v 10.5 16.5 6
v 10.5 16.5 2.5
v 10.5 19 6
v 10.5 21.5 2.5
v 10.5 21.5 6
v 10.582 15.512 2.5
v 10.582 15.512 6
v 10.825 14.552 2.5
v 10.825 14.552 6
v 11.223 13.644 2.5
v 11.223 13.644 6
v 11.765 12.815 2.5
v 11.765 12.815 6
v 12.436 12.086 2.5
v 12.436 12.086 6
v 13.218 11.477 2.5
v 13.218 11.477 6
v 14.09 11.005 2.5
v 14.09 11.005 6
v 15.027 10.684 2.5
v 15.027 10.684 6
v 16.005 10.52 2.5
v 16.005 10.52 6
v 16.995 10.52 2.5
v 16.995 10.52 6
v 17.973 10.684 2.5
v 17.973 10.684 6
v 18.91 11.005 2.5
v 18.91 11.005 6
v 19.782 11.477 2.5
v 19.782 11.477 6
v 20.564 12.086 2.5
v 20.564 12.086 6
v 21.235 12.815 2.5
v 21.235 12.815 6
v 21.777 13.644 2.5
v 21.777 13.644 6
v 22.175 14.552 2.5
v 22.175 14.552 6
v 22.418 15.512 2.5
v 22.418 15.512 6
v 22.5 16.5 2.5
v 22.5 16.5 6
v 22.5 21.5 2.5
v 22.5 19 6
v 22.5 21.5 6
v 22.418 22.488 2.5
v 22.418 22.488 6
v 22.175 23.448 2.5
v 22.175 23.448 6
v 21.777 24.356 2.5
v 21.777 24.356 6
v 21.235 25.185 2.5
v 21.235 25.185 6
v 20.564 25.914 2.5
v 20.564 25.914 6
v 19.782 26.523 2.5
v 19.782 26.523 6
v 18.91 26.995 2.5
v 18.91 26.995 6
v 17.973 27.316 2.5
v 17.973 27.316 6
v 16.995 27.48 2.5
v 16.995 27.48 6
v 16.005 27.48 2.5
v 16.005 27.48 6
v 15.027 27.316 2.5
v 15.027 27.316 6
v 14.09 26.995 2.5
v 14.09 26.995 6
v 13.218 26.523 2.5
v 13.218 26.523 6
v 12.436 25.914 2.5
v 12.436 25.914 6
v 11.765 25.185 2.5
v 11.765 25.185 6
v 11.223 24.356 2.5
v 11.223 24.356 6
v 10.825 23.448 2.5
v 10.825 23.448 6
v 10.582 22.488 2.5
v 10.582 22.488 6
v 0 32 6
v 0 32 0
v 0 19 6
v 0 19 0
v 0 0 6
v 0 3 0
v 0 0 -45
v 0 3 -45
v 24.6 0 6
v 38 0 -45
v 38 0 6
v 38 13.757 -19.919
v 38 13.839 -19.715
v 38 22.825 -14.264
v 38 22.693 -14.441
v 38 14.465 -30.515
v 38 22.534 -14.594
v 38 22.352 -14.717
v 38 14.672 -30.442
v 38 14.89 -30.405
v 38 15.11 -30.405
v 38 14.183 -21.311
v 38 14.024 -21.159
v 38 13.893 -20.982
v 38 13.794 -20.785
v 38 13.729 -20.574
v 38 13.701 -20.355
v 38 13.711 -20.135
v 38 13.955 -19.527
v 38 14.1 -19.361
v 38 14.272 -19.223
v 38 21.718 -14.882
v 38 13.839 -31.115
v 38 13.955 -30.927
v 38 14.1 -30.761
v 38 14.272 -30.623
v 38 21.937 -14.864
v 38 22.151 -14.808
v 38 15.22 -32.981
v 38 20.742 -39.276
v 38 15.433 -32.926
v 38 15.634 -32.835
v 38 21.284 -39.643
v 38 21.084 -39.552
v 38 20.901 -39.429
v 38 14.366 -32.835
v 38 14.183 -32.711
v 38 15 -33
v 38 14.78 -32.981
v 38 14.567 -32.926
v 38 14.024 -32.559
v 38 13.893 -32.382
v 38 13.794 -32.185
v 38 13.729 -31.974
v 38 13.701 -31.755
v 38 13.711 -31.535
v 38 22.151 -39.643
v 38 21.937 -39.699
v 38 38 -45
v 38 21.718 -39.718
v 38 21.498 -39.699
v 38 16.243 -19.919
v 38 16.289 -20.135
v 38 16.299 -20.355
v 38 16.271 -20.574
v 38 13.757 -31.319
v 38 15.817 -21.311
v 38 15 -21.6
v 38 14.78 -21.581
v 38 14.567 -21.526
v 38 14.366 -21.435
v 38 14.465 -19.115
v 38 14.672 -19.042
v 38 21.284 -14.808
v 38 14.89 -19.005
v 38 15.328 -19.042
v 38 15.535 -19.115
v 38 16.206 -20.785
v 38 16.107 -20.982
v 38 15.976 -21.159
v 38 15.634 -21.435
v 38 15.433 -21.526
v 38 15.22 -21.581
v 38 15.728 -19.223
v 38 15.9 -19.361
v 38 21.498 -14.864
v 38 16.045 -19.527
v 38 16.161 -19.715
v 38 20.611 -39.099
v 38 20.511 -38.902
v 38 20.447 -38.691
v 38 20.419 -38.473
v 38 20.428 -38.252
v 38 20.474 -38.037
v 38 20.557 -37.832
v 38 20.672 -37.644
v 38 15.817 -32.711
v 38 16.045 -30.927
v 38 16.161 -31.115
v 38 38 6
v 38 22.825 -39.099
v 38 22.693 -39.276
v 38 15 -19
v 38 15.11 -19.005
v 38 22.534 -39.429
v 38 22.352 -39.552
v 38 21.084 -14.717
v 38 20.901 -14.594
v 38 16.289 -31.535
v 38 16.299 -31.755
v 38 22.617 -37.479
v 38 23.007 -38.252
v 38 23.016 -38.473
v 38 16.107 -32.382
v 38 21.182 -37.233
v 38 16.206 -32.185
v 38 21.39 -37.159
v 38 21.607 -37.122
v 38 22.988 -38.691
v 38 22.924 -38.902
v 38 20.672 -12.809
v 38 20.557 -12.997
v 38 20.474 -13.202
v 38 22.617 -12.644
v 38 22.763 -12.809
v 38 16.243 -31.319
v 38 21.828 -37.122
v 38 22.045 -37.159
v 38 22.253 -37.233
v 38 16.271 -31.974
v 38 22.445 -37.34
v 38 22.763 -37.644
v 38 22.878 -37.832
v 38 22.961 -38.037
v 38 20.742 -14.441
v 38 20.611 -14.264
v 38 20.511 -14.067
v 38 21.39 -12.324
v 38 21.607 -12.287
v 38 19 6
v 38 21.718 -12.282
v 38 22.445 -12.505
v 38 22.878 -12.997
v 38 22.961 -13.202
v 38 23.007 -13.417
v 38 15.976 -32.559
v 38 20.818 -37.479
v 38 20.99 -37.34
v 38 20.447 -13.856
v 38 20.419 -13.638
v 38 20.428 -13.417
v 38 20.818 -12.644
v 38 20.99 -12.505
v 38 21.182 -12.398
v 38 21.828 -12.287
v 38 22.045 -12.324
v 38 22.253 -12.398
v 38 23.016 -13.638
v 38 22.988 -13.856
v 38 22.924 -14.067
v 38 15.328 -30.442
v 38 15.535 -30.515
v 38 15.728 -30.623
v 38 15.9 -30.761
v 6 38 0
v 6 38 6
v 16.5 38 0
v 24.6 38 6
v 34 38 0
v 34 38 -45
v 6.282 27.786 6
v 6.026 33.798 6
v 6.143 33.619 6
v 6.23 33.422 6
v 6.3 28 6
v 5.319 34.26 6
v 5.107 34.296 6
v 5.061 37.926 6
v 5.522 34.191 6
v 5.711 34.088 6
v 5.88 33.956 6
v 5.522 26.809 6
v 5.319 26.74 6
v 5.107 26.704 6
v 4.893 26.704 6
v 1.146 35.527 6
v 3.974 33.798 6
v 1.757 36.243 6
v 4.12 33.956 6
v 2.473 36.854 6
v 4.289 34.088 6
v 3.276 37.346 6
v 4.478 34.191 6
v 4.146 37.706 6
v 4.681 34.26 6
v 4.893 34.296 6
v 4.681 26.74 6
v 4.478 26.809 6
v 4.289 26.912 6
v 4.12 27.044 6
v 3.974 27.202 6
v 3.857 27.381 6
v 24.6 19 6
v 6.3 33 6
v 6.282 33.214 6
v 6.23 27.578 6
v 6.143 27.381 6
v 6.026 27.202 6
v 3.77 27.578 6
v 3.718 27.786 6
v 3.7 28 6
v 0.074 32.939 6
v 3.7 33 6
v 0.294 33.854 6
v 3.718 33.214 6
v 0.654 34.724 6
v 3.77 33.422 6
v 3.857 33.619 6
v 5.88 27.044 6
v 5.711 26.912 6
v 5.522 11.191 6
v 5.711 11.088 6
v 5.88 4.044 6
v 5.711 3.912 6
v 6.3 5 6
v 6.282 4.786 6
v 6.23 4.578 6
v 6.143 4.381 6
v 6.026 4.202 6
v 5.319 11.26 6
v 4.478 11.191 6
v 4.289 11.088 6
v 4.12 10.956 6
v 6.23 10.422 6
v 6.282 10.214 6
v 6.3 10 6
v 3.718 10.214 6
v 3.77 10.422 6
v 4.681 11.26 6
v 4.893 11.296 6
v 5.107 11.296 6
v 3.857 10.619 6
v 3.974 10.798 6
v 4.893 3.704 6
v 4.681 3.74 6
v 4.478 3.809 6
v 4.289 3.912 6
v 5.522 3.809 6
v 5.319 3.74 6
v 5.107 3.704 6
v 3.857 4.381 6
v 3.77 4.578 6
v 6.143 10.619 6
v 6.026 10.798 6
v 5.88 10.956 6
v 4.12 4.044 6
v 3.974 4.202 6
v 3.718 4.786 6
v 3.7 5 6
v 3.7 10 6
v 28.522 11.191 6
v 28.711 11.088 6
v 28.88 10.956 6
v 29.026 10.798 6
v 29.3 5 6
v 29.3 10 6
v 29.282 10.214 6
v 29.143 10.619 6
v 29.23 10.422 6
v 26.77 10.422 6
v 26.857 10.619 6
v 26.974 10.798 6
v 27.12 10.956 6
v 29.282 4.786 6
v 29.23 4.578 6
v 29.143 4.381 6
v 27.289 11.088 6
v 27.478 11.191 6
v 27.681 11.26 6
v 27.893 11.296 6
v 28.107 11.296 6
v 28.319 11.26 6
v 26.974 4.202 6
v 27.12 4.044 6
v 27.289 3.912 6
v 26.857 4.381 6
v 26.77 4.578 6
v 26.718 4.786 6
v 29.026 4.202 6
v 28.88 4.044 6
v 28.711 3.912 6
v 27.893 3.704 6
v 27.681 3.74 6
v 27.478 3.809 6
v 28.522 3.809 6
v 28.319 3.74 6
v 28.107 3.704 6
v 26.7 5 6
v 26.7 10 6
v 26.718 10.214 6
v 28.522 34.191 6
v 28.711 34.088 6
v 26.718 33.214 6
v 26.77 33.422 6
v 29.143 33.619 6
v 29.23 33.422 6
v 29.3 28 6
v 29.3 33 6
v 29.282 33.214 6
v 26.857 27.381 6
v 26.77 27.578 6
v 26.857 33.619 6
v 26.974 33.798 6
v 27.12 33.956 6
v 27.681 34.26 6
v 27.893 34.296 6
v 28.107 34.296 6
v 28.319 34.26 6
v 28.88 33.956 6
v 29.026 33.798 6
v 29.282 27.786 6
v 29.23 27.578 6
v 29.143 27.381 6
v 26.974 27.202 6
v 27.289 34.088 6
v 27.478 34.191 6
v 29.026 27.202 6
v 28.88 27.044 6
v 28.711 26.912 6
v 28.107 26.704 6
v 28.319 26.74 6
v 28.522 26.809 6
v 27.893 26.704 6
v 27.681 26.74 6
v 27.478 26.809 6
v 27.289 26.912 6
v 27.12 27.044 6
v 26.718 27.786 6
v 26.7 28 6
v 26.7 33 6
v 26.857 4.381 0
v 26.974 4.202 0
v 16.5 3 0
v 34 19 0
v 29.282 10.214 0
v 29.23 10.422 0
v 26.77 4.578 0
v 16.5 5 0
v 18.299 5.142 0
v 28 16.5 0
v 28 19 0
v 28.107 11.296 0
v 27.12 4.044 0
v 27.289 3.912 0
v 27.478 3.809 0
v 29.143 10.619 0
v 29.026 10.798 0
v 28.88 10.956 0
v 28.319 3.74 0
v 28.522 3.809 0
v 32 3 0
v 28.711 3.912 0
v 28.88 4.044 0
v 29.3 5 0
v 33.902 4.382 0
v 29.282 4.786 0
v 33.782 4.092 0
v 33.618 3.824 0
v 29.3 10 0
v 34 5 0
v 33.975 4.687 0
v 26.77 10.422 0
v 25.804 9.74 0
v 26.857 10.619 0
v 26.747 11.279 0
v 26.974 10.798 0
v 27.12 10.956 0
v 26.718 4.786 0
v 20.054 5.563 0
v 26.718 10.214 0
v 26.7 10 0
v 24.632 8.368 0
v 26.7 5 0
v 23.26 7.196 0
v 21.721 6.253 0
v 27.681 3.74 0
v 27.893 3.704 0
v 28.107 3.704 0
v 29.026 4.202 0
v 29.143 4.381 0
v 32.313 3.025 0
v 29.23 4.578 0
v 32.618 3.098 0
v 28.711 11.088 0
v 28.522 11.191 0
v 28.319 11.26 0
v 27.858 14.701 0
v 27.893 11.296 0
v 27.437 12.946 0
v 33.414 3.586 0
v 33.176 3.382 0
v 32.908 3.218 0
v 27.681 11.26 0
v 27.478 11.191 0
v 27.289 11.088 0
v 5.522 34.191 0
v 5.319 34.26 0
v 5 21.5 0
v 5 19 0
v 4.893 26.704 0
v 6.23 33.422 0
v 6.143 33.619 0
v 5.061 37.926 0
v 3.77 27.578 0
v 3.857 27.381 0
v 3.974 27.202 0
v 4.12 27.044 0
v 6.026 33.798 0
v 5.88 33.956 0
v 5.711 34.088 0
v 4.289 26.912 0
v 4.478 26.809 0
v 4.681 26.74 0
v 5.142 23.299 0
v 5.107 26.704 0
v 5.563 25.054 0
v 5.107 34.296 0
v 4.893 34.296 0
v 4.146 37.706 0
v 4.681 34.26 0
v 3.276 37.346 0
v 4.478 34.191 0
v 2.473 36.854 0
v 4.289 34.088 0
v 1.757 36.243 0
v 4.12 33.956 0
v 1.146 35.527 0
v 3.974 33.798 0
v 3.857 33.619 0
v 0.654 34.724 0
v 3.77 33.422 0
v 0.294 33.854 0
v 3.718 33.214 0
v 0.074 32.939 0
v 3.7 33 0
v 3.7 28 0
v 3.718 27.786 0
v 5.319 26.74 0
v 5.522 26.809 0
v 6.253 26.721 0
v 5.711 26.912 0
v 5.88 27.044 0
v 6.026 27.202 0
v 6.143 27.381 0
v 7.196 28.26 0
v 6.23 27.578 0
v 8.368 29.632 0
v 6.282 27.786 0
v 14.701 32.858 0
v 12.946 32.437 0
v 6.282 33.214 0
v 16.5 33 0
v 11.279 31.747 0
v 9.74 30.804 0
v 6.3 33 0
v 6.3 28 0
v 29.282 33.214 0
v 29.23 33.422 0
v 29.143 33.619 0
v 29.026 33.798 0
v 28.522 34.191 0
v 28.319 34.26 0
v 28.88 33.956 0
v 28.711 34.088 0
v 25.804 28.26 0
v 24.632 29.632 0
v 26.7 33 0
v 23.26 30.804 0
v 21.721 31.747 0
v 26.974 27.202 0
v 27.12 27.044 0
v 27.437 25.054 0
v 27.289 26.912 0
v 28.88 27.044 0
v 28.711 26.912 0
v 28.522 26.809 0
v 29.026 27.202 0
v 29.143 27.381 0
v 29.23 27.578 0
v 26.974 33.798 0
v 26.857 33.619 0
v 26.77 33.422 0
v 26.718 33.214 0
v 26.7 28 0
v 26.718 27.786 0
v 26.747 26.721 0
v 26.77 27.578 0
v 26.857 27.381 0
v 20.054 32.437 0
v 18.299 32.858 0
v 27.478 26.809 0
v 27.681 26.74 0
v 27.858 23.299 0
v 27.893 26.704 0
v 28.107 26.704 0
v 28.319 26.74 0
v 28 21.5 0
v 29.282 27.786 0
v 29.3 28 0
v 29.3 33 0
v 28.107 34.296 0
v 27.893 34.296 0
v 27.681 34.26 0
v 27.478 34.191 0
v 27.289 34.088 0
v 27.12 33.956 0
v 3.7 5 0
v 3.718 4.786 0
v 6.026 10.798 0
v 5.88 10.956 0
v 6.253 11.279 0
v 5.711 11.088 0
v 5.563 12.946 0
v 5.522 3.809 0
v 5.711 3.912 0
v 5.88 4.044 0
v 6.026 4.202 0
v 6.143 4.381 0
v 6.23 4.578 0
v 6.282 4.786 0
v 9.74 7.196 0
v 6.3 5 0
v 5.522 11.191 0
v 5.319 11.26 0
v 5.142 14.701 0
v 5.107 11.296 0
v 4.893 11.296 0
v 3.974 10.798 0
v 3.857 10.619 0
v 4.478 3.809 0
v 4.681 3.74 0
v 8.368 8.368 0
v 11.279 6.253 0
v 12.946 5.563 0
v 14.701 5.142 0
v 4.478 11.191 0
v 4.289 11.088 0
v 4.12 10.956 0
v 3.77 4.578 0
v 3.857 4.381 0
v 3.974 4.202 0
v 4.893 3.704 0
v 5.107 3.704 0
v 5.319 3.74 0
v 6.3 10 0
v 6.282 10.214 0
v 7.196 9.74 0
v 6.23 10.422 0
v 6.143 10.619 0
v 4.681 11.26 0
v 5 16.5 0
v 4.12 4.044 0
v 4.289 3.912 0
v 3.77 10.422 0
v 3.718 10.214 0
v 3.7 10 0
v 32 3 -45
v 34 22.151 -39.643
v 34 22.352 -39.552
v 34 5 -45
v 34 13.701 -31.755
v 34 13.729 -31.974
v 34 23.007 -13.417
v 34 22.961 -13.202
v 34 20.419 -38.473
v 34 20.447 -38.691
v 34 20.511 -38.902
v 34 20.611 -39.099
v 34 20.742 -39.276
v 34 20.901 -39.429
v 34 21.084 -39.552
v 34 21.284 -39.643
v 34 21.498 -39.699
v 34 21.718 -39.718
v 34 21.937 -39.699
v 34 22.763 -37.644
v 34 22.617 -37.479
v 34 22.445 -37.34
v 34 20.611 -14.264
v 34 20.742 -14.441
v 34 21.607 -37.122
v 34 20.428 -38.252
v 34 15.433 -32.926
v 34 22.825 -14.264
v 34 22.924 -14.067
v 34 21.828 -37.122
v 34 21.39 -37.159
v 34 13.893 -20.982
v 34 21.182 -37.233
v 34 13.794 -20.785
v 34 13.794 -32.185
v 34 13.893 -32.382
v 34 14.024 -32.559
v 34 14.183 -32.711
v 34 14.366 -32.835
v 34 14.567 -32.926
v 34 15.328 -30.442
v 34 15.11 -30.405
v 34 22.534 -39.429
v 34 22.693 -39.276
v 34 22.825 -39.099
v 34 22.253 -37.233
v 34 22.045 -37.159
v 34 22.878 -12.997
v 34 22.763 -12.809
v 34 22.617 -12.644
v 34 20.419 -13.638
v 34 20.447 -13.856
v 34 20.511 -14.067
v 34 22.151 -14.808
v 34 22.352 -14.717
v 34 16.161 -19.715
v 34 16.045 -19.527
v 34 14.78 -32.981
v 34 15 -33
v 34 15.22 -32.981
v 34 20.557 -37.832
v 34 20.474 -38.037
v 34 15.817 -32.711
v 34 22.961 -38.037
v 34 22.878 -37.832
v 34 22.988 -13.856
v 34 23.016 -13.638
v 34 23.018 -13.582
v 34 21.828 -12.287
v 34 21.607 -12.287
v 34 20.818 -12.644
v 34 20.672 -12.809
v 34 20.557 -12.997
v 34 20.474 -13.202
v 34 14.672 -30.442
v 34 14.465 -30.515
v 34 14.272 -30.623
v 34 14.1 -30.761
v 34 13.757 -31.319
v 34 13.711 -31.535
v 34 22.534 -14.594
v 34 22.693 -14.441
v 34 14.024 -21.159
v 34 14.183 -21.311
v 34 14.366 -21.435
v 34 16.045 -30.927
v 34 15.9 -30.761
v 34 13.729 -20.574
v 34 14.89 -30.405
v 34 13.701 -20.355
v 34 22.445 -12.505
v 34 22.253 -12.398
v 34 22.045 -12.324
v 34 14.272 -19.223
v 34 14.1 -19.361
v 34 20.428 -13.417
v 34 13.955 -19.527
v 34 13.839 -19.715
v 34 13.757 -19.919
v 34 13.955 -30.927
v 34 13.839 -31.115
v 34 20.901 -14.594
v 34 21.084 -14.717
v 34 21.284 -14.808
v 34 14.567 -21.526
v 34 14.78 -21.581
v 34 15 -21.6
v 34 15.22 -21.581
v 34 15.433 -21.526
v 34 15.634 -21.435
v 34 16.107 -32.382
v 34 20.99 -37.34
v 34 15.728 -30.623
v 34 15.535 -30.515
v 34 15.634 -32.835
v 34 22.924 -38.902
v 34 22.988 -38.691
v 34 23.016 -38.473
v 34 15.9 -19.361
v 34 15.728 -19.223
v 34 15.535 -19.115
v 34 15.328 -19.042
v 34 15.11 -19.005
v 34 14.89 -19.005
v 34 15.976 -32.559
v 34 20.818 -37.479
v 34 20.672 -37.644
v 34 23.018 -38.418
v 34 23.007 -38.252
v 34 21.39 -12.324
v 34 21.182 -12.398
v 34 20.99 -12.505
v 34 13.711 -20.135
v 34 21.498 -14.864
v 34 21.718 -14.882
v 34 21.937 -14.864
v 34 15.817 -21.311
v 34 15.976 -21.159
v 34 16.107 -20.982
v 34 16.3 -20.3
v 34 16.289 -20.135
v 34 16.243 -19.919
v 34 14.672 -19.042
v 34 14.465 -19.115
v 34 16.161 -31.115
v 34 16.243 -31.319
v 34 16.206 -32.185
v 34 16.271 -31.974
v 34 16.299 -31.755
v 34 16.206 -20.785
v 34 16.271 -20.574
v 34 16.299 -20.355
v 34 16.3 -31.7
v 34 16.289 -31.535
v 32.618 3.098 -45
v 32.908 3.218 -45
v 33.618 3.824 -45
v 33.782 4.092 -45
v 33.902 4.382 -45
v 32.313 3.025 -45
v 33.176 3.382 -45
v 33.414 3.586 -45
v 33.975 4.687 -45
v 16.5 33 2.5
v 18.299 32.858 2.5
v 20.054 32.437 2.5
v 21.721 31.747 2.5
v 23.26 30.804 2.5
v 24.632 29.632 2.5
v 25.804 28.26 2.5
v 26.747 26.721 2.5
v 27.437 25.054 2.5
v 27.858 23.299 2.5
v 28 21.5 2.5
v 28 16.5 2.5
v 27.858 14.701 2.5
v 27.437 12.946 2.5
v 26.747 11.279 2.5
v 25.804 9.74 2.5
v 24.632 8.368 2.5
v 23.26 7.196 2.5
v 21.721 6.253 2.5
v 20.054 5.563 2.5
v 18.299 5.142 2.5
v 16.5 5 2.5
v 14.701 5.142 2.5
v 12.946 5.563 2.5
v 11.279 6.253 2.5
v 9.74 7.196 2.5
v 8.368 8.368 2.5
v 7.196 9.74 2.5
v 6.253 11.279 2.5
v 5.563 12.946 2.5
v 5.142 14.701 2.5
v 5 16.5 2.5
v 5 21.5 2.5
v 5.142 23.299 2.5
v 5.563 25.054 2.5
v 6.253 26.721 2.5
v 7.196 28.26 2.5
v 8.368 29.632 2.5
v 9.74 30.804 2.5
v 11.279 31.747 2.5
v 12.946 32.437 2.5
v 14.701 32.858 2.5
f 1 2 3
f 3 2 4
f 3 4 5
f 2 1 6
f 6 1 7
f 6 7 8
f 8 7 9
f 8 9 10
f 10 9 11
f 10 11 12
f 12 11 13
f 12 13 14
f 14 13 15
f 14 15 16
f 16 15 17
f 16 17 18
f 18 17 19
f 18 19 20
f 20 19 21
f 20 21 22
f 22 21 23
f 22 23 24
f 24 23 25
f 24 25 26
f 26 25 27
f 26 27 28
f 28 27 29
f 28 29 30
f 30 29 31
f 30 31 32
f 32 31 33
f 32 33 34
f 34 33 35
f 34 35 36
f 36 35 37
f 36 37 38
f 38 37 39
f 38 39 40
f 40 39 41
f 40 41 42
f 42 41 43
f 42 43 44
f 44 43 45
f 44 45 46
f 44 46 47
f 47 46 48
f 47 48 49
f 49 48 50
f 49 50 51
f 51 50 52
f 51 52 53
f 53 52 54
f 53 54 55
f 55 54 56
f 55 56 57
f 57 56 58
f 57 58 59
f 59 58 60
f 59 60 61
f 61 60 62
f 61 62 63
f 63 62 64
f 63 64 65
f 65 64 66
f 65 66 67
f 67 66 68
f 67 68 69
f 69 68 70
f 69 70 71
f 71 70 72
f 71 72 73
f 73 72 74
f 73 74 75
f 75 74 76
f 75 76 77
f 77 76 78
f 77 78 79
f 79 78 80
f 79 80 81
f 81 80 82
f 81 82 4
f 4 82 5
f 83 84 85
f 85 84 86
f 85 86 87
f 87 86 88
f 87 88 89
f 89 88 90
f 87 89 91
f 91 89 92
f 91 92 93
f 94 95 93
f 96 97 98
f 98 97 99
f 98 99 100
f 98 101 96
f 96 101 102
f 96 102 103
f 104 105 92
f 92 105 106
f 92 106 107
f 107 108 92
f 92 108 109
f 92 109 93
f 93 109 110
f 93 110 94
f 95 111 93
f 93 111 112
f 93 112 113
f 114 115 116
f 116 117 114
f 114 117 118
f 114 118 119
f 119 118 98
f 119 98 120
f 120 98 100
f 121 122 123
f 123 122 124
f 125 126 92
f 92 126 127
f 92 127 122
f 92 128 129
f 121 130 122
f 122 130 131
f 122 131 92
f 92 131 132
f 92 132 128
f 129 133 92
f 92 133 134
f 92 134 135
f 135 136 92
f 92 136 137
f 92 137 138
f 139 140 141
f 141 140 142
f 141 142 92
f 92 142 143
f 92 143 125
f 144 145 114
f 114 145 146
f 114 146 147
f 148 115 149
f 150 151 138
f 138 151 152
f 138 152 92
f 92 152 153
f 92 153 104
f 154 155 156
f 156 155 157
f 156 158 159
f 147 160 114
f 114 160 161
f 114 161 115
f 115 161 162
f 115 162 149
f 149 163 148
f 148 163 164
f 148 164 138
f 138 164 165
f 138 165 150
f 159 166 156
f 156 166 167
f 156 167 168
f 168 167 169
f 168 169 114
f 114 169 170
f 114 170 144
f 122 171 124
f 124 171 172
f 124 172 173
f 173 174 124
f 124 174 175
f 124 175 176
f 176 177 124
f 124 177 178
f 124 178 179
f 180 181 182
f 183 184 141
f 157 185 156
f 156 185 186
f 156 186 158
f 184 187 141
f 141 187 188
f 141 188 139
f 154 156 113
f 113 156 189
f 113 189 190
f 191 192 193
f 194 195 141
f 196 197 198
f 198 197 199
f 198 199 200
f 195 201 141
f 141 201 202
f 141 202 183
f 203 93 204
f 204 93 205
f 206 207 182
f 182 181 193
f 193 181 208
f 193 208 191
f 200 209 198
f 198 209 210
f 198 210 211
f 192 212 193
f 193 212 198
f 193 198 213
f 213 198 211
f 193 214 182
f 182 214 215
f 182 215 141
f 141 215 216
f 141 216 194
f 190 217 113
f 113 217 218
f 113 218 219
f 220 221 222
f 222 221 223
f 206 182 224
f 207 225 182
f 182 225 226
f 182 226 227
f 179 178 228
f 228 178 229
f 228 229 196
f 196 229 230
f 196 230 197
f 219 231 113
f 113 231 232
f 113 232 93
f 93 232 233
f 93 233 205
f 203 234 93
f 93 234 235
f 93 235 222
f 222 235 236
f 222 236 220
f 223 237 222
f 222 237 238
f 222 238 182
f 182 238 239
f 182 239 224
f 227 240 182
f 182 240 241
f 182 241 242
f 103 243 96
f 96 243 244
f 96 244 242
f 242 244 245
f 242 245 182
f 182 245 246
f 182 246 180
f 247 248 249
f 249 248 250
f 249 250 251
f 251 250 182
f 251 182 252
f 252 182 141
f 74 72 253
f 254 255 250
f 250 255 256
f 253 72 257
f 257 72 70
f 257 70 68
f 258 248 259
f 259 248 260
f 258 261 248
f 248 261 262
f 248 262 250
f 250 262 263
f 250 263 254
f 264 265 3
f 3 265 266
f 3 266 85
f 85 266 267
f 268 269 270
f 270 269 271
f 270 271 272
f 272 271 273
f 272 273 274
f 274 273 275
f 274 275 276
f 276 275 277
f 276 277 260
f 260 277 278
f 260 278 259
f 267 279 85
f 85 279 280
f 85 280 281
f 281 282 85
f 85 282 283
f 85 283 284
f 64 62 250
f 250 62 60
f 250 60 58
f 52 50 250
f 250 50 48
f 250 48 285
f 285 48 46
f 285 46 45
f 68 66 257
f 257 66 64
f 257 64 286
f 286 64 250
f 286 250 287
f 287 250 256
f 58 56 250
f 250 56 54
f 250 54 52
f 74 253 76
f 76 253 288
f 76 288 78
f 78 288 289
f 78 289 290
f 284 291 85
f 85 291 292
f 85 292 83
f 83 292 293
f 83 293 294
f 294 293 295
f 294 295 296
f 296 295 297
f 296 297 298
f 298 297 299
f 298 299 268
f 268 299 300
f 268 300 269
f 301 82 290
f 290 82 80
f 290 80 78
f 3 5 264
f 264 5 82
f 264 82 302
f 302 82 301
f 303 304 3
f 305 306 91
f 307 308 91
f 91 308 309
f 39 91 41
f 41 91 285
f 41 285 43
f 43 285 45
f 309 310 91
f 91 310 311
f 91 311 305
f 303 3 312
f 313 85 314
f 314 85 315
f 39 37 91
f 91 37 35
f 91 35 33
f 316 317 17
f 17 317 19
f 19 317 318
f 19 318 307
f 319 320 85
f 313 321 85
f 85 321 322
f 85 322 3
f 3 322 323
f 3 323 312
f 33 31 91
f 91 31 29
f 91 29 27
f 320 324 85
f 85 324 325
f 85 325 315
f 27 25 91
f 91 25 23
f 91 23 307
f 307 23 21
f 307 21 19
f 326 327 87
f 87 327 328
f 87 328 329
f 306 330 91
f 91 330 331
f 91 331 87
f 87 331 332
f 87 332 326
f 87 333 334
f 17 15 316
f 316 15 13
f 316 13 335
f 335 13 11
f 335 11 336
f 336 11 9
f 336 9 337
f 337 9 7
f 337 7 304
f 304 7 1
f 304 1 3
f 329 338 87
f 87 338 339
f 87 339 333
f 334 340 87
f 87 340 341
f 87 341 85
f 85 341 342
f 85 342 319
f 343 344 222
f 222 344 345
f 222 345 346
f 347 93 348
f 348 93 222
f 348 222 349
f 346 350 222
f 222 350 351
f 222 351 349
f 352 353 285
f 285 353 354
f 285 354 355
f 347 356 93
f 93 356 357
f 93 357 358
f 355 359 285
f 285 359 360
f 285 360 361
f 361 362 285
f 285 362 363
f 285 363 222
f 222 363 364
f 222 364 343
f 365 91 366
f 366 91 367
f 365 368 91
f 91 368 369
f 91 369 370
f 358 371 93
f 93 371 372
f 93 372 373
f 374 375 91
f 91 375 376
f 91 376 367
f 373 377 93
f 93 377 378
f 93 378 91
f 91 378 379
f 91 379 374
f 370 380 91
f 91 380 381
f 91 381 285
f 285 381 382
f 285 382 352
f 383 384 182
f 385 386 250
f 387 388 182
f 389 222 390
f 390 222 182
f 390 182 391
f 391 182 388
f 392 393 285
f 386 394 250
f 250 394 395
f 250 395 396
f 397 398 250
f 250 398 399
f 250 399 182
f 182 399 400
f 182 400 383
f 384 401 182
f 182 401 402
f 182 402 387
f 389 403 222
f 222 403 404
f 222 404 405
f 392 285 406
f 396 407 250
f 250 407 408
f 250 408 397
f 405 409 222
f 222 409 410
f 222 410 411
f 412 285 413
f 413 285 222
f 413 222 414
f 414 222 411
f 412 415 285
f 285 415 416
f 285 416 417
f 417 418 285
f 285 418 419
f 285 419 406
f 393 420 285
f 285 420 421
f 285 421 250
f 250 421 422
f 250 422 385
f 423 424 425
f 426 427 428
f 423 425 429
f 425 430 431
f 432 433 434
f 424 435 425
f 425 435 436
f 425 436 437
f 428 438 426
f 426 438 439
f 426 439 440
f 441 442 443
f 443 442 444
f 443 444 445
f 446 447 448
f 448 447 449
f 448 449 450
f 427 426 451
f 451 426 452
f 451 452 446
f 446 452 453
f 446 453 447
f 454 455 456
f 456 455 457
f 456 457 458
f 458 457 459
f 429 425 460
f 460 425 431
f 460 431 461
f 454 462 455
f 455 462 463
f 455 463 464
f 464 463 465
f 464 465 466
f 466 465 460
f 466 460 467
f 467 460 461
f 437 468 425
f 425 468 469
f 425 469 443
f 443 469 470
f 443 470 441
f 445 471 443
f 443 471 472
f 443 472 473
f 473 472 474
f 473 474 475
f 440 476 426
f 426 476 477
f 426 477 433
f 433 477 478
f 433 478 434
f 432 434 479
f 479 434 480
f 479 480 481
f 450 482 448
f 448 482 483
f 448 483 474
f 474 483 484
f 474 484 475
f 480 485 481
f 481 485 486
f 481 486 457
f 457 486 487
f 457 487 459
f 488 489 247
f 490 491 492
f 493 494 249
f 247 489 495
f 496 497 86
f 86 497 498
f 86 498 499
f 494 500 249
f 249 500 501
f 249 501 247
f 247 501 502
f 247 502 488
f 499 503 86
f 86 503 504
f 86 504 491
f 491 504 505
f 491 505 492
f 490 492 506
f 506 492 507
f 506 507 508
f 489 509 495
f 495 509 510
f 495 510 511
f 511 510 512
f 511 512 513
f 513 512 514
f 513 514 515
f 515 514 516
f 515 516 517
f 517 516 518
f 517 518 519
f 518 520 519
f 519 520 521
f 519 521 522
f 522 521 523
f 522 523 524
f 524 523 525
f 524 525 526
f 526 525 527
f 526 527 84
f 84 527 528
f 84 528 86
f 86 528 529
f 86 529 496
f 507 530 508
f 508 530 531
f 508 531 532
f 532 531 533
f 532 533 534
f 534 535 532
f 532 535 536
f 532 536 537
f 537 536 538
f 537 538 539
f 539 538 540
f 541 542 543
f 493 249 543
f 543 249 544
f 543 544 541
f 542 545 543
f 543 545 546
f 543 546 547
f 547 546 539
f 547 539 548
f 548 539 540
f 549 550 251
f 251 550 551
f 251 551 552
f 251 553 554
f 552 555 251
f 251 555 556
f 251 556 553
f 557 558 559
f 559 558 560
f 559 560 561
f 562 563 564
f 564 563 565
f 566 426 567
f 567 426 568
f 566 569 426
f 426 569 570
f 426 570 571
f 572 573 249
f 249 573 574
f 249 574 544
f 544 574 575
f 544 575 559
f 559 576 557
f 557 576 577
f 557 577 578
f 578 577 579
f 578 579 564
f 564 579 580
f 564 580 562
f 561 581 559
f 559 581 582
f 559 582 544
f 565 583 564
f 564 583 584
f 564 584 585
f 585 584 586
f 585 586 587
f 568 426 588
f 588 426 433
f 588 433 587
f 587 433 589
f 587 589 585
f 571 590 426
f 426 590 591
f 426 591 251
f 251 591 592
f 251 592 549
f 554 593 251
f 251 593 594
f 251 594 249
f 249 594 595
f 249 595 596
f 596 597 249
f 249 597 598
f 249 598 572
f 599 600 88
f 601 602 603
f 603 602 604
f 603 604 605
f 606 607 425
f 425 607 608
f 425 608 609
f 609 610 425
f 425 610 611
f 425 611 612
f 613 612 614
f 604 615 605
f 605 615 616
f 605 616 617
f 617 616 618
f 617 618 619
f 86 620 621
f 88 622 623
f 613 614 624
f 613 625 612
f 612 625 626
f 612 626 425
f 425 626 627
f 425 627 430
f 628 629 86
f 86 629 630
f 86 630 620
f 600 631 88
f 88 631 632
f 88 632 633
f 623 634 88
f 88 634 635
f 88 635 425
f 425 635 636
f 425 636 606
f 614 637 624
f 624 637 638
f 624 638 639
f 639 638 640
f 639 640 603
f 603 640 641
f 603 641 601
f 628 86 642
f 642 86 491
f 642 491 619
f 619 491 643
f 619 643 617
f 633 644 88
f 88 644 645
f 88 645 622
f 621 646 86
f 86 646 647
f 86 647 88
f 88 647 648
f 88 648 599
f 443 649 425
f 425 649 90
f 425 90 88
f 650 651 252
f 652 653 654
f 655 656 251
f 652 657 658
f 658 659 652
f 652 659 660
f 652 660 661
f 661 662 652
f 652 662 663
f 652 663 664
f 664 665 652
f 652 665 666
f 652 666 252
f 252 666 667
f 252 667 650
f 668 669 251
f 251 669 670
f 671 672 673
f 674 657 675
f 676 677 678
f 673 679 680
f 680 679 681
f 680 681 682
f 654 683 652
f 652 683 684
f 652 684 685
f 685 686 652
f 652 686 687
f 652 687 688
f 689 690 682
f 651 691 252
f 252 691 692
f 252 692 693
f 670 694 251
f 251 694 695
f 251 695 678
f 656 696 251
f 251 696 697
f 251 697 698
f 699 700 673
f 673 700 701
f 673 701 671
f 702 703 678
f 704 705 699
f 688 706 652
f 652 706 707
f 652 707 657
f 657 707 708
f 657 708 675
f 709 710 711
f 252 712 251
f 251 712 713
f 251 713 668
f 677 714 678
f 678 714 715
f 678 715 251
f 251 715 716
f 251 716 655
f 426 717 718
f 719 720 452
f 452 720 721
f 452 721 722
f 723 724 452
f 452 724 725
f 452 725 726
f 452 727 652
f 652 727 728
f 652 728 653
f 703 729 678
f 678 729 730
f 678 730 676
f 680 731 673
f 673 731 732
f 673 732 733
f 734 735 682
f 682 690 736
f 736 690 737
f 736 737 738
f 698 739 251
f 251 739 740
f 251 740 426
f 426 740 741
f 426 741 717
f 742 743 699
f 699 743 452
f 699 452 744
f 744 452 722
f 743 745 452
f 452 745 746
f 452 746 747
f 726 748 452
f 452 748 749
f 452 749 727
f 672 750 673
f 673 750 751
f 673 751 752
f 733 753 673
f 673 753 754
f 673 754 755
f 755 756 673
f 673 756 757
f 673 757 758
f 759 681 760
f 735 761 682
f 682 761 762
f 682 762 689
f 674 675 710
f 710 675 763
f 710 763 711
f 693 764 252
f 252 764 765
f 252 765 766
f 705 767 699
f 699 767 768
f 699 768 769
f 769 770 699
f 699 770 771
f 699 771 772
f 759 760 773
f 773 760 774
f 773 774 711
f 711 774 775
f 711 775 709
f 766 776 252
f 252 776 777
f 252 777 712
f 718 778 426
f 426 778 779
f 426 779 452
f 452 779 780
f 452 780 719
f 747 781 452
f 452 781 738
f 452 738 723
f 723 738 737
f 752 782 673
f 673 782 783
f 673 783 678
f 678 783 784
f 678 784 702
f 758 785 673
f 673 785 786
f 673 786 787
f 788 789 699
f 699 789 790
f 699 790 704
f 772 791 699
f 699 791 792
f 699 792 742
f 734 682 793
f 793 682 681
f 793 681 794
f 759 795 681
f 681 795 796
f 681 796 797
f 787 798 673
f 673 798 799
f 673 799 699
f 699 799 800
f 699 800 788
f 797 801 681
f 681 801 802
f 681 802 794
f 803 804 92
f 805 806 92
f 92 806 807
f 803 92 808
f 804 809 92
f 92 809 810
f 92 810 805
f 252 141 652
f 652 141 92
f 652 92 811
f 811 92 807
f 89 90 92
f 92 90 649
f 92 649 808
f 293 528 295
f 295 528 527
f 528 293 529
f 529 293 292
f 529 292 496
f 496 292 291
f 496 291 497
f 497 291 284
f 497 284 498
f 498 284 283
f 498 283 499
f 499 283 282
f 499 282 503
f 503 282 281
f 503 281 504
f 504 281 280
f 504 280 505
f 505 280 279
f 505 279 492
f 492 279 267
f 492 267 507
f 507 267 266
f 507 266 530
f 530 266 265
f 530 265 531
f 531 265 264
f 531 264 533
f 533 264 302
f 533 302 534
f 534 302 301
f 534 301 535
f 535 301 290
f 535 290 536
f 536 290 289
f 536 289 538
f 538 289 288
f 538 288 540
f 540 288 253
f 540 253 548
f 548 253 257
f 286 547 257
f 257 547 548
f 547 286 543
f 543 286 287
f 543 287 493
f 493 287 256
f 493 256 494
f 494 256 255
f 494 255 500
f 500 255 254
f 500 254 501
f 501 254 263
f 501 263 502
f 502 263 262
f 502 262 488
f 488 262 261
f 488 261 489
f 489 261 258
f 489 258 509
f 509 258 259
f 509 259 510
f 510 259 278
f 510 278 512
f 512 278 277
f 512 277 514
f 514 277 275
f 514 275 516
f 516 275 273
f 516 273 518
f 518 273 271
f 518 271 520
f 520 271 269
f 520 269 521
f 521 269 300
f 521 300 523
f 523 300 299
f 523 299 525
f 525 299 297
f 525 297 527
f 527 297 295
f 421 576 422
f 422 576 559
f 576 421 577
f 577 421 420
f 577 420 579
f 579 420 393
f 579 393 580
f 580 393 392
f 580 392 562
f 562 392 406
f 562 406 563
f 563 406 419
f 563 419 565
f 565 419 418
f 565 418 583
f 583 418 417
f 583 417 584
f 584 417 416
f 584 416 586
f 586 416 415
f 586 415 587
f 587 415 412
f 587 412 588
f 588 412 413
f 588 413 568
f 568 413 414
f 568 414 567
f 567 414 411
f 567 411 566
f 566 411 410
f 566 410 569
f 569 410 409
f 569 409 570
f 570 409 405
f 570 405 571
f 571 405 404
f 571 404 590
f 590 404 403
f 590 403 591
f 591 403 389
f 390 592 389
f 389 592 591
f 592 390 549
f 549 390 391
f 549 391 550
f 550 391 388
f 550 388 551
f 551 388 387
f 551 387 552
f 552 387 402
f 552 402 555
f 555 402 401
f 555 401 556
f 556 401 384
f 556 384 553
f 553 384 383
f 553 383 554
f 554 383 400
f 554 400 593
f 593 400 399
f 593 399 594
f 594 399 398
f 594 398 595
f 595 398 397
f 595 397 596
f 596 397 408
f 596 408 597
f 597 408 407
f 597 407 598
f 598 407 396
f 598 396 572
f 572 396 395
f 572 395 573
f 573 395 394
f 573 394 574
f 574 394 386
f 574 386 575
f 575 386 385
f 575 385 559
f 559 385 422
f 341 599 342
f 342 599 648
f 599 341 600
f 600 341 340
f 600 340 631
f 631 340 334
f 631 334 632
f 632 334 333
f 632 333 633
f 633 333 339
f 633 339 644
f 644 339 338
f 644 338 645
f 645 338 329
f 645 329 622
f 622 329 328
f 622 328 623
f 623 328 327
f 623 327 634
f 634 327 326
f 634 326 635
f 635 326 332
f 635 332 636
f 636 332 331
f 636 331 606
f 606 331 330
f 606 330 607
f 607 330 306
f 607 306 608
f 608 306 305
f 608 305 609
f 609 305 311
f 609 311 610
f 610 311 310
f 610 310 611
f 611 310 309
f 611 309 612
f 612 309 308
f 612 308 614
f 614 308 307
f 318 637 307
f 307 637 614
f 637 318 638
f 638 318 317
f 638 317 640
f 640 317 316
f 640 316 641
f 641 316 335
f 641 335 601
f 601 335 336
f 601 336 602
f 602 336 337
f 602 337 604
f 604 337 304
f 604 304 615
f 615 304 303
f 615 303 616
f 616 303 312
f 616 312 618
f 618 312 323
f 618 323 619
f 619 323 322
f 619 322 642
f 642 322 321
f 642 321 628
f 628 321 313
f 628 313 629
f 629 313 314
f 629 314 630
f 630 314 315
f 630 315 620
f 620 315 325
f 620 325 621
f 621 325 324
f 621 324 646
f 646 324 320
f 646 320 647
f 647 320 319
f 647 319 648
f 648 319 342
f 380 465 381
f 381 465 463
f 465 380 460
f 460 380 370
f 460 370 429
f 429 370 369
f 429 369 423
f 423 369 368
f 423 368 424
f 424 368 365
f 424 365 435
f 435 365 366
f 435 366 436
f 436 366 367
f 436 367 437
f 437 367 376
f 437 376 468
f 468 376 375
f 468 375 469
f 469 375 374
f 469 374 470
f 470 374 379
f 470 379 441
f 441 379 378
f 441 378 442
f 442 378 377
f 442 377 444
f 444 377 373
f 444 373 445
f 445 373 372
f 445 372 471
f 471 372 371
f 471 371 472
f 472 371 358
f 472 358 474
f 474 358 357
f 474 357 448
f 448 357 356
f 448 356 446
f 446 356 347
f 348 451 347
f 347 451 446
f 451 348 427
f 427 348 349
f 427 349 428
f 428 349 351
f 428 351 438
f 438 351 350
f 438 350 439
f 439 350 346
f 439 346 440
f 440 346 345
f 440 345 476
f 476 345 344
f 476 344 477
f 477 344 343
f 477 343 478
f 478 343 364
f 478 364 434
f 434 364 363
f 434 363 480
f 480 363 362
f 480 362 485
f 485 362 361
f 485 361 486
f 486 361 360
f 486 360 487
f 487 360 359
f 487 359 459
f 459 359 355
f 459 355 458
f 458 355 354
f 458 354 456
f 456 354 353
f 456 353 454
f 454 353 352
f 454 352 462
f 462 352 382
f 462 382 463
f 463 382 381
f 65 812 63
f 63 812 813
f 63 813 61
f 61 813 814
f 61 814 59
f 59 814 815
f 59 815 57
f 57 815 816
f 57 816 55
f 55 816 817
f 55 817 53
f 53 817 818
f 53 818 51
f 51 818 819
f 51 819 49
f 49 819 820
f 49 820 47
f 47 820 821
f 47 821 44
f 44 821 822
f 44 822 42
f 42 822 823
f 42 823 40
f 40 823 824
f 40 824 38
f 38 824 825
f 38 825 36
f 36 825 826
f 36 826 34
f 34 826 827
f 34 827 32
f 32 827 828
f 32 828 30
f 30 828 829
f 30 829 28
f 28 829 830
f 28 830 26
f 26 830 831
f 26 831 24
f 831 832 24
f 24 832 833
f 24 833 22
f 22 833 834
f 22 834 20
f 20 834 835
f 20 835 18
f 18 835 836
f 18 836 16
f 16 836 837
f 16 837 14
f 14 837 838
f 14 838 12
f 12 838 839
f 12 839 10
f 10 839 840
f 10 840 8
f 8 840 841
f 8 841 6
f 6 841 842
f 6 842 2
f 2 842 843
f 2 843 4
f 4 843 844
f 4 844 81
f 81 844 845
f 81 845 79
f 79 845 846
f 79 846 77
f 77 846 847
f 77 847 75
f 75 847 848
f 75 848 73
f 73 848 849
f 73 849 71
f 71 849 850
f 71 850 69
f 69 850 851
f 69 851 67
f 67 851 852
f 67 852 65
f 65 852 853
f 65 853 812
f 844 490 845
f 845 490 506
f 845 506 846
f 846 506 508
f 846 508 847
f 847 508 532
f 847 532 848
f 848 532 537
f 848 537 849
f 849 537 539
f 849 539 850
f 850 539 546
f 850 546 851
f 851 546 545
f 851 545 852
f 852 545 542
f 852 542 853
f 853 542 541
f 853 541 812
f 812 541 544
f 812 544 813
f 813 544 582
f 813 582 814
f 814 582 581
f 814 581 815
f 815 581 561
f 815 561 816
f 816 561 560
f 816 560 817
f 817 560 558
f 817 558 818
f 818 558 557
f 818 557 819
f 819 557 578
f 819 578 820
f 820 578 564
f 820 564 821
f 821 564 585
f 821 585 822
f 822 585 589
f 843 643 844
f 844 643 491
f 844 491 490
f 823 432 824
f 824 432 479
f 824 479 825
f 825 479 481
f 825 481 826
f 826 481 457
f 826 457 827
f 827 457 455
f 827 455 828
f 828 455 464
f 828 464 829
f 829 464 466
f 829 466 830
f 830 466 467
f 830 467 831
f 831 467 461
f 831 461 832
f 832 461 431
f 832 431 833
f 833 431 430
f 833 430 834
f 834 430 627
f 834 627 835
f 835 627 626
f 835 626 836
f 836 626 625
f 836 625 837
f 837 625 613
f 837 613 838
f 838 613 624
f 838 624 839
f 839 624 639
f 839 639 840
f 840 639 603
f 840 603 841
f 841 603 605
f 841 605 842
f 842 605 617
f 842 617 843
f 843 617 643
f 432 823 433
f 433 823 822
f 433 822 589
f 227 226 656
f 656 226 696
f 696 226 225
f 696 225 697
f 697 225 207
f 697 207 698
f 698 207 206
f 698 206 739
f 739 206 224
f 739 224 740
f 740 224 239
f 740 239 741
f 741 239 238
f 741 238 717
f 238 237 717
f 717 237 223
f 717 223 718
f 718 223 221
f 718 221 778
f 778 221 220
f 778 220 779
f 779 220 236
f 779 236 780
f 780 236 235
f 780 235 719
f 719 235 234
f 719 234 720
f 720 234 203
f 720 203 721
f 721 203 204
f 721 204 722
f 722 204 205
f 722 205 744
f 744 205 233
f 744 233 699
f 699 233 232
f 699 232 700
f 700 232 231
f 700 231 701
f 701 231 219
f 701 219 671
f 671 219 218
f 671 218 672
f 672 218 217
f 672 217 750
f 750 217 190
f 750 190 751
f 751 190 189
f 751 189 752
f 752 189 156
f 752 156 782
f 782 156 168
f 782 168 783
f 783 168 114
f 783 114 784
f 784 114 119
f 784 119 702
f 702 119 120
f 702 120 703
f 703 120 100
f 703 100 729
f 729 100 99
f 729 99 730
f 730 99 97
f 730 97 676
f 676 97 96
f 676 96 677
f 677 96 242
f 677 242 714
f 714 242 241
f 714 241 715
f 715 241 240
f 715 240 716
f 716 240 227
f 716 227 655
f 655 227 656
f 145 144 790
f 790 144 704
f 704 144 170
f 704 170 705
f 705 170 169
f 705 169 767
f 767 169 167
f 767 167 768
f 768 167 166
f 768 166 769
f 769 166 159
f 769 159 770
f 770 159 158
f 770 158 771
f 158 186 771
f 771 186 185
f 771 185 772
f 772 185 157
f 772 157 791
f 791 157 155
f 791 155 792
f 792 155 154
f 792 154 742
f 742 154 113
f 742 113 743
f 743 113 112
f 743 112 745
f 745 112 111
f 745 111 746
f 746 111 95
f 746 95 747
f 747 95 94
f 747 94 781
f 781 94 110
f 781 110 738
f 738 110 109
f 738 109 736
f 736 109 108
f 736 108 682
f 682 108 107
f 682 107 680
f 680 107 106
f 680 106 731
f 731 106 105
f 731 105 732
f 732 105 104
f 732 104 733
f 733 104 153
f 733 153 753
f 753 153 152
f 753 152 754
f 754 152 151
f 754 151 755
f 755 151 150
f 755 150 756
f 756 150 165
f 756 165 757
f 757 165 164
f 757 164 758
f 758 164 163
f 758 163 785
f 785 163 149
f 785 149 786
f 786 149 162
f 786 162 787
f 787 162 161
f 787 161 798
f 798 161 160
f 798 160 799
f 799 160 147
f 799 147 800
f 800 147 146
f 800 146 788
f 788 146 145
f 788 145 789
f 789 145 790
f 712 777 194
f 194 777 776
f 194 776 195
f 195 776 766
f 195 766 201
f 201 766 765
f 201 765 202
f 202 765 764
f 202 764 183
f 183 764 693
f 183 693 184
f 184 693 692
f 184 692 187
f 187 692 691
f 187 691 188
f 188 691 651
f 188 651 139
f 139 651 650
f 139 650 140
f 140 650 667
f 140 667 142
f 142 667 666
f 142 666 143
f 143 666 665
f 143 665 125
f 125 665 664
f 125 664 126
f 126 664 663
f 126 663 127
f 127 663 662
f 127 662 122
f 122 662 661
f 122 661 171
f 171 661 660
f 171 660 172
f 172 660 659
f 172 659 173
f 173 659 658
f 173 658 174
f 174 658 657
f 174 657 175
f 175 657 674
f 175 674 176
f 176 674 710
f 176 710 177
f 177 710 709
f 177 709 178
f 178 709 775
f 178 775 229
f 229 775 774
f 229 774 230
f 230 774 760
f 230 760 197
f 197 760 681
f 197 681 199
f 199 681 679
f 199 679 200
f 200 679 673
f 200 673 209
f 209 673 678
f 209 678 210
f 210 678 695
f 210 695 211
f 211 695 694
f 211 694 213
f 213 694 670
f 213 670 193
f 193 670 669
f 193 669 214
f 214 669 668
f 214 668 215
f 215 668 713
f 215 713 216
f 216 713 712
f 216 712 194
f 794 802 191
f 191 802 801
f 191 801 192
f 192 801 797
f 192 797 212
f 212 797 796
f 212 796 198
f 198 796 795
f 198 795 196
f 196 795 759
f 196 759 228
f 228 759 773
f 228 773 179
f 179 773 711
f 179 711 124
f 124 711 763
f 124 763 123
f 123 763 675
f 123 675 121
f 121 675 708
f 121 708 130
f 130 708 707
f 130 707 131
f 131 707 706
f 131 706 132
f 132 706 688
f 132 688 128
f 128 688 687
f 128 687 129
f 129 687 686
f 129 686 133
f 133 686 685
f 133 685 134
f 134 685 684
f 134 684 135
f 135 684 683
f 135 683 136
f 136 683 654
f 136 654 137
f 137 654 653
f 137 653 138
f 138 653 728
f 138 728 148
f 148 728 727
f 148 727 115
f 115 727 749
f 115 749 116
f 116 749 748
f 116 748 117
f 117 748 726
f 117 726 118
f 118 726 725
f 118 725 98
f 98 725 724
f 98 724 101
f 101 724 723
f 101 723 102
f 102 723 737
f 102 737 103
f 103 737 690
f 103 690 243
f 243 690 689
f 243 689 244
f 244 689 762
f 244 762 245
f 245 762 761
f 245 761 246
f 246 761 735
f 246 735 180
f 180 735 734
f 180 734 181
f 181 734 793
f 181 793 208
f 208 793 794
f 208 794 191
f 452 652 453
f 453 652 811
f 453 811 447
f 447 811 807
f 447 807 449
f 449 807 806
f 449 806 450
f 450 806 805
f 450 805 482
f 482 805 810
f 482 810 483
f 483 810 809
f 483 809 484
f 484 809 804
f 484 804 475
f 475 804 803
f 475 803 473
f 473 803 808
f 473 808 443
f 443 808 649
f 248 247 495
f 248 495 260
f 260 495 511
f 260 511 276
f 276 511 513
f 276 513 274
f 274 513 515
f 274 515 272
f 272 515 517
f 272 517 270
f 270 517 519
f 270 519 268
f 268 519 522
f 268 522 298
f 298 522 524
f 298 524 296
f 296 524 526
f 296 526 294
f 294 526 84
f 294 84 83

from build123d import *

# Parameters (mm, degrees)
SKETCH1_W           = 38
SKETCH1_H           = 38
BOSS_EXTRUDE1_DEPTH = 6
BOSS_EXTRUDE2_DEPTH = 45
CUT_EXTRUDE1_DEPTH  = 6
CUT_EXTRUDE2_DEPTH  = 2.5
SKETCH6_R           = 1.3
CUT_EXTRUDE3_DEPTH  = 4
FILLET1_R           = 2
FILLET2_R           = 6


with BuildPart() as part:
    # Sketch1 → Boss-Extrude1 (new body)
    with BuildSketch(Plane.XY):
        with Locations((19, 19)):
            Rectangle(SKETCH1_W, SKETCH1_H)
    extrude(amount=BOSS_EXTRUDE1_DEPTH)

    # Sketch2 → Boss-Extrude2 (add)
    with BuildSketch(Plane(origin=(0, 0, 0), x_dir=(-1, 0, 0), z_dir=(0, 0, -1))):
        Polygon((-34, 38), (-34, 3), (0, 3), (0, 0), (-38, 0), (-38, 38), align=None)
    extrude(amount=BOSS_EXTRUDE2_DEPTH)

    # Sketch3 → Cut-Extrude1 (cut)
    with BuildSketch(Plane.XY.offset(6)):
        with BuildLine():
            Line((6.3, 33), (6.3, 28))
            ThreePointArc((6.3, 28), (5, 26.7), (3.7, 28))
            Line((3.7, 28), (3.7, 33))
            ThreePointArc((3.7, 33), (5, 34.3), (6.3, 33))
        make_face()
        with BuildLine():
            Line((29.3, 33), (29.3, 28))
            ThreePointArc((29.3, 28), (28, 26.7), (26.7, 28))
            Line((26.7, 28), (26.7, 33))
            ThreePointArc((26.7, 33), (28, 34.3), (29.3, 33))
        make_face()
        with BuildLine():
            Line((6.3, 10), (6.3, 5))
            ThreePointArc((6.3, 5), (5, 3.7), (3.7, 5))
            Line((3.7, 5), (3.7, 10))
            ThreePointArc((3.7, 10), (5, 11.3), (6.3, 10))
        make_face()
        with BuildLine():
            Line((29.3, 10), (29.3, 5))
            ThreePointArc((29.3, 5), (28, 3.7), (26.7, 5))
            Line((26.7, 5), (26.7, 10))
            ThreePointArc((26.7, 10), (28, 11.3), (29.3, 10))
        make_face()
        with BuildLine():
            Line((22.5, 21.5), (22.5, 16.5))
            ThreePointArc((22.5, 16.5), (16.5, 10.5), (10.5, 16.5))
            Line((10.5, 16.5), (10.5, 21.5))
            ThreePointArc((10.5, 21.5), (16.5, 27.5), (22.5, 21.5))
        make_face()
    extrude(amount=-CUT_EXTRUDE1_DEPTH, mode=Mode.SUBTRACT)

    # Sketch5 → Cut-Extrude2 (cut)
    with BuildSketch(Plane(origin=(0, 0, 0), x_dir=(-1, 0, 0), z_dir=(0, 0, -1))):
        with BuildLine():
            Line((-5, 21.5), (-5, 16.5))
            ThreePointArc((-5, 16.5), (-16.5, 5), (-28, 16.5))
            Line((-28, 16.5), (-28, 21.5))
            ThreePointArc((-28, 21.5), (-16.5, 33), (-5, 21.5))
        make_face()
    extrude(amount=-CUT_EXTRUDE2_DEPTH, mode=Mode.SUBTRACT)

    # Sketch6 → Cut-Extrude3 (cut)
    with BuildSketch(Plane(origin=(38, 0, 0), x_dir=(0, 0, -1), z_dir=(1, 0, 0))):
        with Locations((13.582485579, 21.717514421)):
            Circle(SKETCH6_R)
        with Locations((20.3, 15)):
            Circle(SKETCH6_R)
        with Locations((38.417514421, 21.717514421)):
            Circle(SKETCH6_R)
        with Locations((31.7, 15)):
            Circle(SKETCH6_R)
    extrude(amount=-CUT_EXTRUDE3_DEPTH, mode=Mode.SUBTRACT)

    # Fillet1
    fillet1_edges = [part.edges().sort_by_distance(p)[0] for p in [
        (34, 3, -22.5),
    ]]
    fillet(fillet1_edges, radius=FILLET1_R)

    # Fillet2
    fillet2_edges = [part.edges().sort_by_distance(p)[0] for p in [
        (0, 38, 3),
    ]]
    fillet(fillet2_edges, radius=FILLET2_R)


solid = part.part
